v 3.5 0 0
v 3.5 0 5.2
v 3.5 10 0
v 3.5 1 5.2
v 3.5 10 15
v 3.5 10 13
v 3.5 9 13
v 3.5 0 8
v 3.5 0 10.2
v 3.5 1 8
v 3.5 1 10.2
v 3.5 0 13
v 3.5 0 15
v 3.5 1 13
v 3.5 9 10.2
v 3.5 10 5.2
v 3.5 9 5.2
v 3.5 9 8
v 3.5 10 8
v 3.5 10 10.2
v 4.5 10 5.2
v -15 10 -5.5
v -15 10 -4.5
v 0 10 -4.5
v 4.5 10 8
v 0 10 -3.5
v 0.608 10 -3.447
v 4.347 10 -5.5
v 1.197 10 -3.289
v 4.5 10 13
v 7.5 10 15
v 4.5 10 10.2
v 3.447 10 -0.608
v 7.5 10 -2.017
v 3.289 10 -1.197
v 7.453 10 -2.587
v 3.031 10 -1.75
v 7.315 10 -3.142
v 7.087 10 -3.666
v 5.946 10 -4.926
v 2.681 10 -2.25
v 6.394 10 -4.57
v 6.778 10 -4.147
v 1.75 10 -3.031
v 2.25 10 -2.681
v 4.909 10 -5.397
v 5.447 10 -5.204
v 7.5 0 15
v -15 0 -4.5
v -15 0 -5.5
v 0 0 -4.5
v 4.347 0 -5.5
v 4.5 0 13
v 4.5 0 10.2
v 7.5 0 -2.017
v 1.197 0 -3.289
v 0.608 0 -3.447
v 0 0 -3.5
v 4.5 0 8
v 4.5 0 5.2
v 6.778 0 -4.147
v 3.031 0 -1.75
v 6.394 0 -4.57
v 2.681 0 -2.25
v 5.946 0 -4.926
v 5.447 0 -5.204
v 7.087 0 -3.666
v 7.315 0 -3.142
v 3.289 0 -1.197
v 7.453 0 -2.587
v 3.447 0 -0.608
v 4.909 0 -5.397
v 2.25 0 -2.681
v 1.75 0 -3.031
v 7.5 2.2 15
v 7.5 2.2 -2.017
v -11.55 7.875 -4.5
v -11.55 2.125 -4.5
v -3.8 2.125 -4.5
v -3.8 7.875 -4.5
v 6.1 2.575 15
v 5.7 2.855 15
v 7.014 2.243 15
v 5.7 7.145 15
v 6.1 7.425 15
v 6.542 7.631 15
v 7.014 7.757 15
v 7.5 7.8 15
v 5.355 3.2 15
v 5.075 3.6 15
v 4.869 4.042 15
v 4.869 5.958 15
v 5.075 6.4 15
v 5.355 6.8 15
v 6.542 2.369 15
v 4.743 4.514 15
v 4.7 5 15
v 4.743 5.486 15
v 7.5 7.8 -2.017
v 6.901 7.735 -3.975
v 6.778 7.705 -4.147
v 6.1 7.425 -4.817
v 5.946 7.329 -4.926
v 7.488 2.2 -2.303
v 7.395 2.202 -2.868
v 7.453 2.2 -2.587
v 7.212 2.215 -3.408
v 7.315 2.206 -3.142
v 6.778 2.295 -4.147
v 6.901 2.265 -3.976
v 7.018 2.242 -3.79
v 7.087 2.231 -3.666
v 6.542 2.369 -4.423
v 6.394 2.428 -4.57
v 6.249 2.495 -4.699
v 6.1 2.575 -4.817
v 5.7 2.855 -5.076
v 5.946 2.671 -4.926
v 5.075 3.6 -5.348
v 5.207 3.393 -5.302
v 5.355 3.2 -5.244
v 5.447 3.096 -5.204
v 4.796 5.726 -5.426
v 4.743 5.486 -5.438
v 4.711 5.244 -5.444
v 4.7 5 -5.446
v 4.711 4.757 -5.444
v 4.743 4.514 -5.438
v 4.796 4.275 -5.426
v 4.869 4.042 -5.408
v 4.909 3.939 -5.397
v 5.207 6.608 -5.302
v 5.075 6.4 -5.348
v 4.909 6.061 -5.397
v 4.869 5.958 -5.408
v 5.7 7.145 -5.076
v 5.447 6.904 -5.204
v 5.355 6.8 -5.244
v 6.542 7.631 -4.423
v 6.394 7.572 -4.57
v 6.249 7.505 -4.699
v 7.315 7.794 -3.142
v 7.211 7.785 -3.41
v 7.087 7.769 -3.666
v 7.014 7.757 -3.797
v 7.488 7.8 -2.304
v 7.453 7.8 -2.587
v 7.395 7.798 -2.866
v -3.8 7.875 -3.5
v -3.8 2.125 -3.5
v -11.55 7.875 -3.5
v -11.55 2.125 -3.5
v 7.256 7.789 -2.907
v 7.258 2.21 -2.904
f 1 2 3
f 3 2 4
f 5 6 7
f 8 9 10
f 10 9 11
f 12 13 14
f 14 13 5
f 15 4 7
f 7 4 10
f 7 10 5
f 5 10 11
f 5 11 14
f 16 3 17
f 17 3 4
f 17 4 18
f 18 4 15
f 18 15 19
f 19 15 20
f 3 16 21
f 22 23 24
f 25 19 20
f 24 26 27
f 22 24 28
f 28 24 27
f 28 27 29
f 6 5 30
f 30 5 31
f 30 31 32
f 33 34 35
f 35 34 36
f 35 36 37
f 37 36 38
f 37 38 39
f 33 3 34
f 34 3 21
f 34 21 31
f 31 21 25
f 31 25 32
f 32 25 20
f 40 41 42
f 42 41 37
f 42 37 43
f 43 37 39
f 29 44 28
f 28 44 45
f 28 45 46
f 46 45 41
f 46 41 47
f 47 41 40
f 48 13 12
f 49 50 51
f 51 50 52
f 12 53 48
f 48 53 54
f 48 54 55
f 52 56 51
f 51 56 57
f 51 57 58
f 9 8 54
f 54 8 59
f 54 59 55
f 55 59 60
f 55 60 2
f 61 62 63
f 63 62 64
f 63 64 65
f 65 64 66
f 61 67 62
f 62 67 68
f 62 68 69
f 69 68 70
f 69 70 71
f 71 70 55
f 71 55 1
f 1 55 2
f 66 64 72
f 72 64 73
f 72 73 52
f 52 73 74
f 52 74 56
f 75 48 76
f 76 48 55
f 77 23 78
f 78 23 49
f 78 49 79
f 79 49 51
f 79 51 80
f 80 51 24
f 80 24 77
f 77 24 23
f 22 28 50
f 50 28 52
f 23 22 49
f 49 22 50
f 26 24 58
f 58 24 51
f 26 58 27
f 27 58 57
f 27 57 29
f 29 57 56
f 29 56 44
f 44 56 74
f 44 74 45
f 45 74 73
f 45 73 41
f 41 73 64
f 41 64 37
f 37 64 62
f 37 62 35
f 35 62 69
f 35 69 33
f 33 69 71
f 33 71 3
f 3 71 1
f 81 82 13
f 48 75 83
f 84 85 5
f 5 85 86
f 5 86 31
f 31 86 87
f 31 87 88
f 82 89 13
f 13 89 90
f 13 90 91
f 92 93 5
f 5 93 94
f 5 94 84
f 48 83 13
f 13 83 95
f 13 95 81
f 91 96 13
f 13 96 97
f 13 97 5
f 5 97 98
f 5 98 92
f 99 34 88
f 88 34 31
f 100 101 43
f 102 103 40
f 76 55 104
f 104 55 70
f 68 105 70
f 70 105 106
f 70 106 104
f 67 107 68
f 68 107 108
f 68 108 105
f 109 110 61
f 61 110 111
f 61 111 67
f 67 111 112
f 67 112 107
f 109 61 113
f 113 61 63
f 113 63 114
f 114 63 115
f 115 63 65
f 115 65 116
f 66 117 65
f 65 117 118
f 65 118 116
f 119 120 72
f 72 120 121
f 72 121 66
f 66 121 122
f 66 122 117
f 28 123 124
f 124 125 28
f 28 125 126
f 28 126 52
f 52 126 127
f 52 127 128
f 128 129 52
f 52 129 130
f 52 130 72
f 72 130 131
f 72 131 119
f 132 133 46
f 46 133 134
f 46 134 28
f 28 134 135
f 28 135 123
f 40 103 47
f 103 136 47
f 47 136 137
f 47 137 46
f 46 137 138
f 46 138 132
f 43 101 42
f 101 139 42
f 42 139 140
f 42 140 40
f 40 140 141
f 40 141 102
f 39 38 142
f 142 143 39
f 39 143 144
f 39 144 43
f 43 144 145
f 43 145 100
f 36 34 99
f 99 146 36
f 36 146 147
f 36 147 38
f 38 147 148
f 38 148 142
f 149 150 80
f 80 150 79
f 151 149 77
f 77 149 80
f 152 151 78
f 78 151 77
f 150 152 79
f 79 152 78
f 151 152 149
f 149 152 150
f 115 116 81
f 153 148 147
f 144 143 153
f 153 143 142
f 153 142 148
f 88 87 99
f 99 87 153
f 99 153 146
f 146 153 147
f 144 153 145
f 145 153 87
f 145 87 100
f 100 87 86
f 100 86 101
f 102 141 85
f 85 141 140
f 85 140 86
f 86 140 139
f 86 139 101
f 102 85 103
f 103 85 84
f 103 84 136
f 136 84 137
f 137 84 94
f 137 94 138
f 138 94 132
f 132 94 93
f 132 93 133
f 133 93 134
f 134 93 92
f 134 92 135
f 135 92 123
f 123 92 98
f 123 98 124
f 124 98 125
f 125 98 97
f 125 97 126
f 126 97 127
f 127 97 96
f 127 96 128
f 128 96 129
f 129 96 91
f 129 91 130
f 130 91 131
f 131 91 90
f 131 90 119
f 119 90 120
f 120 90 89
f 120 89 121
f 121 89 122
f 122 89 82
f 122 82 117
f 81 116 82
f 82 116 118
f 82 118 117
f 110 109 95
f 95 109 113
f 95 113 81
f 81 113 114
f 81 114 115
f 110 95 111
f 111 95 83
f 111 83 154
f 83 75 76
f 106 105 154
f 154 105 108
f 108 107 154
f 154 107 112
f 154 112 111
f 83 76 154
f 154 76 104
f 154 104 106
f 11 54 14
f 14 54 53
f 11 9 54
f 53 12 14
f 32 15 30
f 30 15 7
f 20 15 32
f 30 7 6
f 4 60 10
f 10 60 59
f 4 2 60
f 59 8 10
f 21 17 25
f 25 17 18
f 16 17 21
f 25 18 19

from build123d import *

# Parameters (mm, degrees)
BOSS_EXTRUDE1_DEPTH = 10
SKETCH2_W           = 7.75
SKETCH2_H           = 5.75
BOSS_EXTRUDE2_DEPTH = 1
CUT_EXTRUDE1_DEPTH  = 28.299267389
CUT_EXTRUDE2_START  = -2
CUT_EXTRUDE2_DEPTH  = 2.8
CUT_EXTRUDE3_START  = -7
CUT_EXTRUDE3_DEPTH  = 2.8


with BuildPart() as part:
    # Sketch1 → Boss-Extrude1 (new body)
    with BuildSketch(Plane(origin=(0, 0, 0), x_dir=(1, 0, 0), z_dir=(0, 1, 0))):
        with BuildLine():
            Line((-15, 4.5), (0, 4.5))
            Line((0, 4.5), (0, 3.5))
            ThreePointArc((0, 3.5), (2.474873734, 2.474873734), (3.5, 0))
            Line((3.5, 0), (3.5, -15))
            Line((3.5, -15), (7.5, -15))
            Line((7.5, -15), (7.5, 2.017195282))
            ThreePointArc((7.5, 2.017195282), (6.594493755, 4.366365807), (4.346513054, 5.5))
            Line((4.346513054, 5.5), (-15, 5.5))
            Line((-15, 5.5), (-15, 4.5))
        make_face()
    extrude(amount=BOSS_EXTRUDE1_DEPTH)

    # Sketch2 → Boss-Extrude2 (add)
    with BuildSketch(Plane.XY.offset(-4.5)):
        with Locations((-7.675, 5)):
            Rectangle(SKETCH2_W, SKETCH2_H)
    extrude(amount=BOSS_EXTRUDE2_DEPTH)

    # Sketch3 → Cut-Extrude1 (cut, through all)
    with BuildSketch(Plane.XY.offset(15)):
        with BuildLine():
            Line((7.5, 7.8), (7.5, 2.2))
            ThreePointArc((7.5, 2.2), (4.7, 5), (7.5, 7.8))
        make_face()
    extrude(amount=-CUT_EXTRUDE1_DEPTH, mode=Mode.SUBTRACT)

    # Sketch4 → Cut-Extrude2 (cut)
    with BuildSketch(Plane.XY.offset(15).offset(CUT_EXTRUDE2_START)):
        Polygon((4.5, 10), (3.5, 9), (3.5, 10), align=None)
        Polygon((3.5, 1), (3.5, 0), (4.5, 0), align=None)
    extrude(amount=-CUT_EXTRUDE2_DEPTH, mode=Mode.SUBTRACT)

    # Sketch4<2> → Cut-Extrude3 (cut)
    with BuildSketch(Plane.XY.offset(15).offset(CUT_EXTRUDE3_START)):
        Polygon((4.5, 10), (3.5, 9), (3.5, 10), align=None)
        Polygon((3.5, 1), (3.5, 0), (4.5, 0), align=None)
    extrude(amount=-CUT_EXTRUDE3_DEPTH, mode=Mode.SUBTRACT)


solid = part.part
